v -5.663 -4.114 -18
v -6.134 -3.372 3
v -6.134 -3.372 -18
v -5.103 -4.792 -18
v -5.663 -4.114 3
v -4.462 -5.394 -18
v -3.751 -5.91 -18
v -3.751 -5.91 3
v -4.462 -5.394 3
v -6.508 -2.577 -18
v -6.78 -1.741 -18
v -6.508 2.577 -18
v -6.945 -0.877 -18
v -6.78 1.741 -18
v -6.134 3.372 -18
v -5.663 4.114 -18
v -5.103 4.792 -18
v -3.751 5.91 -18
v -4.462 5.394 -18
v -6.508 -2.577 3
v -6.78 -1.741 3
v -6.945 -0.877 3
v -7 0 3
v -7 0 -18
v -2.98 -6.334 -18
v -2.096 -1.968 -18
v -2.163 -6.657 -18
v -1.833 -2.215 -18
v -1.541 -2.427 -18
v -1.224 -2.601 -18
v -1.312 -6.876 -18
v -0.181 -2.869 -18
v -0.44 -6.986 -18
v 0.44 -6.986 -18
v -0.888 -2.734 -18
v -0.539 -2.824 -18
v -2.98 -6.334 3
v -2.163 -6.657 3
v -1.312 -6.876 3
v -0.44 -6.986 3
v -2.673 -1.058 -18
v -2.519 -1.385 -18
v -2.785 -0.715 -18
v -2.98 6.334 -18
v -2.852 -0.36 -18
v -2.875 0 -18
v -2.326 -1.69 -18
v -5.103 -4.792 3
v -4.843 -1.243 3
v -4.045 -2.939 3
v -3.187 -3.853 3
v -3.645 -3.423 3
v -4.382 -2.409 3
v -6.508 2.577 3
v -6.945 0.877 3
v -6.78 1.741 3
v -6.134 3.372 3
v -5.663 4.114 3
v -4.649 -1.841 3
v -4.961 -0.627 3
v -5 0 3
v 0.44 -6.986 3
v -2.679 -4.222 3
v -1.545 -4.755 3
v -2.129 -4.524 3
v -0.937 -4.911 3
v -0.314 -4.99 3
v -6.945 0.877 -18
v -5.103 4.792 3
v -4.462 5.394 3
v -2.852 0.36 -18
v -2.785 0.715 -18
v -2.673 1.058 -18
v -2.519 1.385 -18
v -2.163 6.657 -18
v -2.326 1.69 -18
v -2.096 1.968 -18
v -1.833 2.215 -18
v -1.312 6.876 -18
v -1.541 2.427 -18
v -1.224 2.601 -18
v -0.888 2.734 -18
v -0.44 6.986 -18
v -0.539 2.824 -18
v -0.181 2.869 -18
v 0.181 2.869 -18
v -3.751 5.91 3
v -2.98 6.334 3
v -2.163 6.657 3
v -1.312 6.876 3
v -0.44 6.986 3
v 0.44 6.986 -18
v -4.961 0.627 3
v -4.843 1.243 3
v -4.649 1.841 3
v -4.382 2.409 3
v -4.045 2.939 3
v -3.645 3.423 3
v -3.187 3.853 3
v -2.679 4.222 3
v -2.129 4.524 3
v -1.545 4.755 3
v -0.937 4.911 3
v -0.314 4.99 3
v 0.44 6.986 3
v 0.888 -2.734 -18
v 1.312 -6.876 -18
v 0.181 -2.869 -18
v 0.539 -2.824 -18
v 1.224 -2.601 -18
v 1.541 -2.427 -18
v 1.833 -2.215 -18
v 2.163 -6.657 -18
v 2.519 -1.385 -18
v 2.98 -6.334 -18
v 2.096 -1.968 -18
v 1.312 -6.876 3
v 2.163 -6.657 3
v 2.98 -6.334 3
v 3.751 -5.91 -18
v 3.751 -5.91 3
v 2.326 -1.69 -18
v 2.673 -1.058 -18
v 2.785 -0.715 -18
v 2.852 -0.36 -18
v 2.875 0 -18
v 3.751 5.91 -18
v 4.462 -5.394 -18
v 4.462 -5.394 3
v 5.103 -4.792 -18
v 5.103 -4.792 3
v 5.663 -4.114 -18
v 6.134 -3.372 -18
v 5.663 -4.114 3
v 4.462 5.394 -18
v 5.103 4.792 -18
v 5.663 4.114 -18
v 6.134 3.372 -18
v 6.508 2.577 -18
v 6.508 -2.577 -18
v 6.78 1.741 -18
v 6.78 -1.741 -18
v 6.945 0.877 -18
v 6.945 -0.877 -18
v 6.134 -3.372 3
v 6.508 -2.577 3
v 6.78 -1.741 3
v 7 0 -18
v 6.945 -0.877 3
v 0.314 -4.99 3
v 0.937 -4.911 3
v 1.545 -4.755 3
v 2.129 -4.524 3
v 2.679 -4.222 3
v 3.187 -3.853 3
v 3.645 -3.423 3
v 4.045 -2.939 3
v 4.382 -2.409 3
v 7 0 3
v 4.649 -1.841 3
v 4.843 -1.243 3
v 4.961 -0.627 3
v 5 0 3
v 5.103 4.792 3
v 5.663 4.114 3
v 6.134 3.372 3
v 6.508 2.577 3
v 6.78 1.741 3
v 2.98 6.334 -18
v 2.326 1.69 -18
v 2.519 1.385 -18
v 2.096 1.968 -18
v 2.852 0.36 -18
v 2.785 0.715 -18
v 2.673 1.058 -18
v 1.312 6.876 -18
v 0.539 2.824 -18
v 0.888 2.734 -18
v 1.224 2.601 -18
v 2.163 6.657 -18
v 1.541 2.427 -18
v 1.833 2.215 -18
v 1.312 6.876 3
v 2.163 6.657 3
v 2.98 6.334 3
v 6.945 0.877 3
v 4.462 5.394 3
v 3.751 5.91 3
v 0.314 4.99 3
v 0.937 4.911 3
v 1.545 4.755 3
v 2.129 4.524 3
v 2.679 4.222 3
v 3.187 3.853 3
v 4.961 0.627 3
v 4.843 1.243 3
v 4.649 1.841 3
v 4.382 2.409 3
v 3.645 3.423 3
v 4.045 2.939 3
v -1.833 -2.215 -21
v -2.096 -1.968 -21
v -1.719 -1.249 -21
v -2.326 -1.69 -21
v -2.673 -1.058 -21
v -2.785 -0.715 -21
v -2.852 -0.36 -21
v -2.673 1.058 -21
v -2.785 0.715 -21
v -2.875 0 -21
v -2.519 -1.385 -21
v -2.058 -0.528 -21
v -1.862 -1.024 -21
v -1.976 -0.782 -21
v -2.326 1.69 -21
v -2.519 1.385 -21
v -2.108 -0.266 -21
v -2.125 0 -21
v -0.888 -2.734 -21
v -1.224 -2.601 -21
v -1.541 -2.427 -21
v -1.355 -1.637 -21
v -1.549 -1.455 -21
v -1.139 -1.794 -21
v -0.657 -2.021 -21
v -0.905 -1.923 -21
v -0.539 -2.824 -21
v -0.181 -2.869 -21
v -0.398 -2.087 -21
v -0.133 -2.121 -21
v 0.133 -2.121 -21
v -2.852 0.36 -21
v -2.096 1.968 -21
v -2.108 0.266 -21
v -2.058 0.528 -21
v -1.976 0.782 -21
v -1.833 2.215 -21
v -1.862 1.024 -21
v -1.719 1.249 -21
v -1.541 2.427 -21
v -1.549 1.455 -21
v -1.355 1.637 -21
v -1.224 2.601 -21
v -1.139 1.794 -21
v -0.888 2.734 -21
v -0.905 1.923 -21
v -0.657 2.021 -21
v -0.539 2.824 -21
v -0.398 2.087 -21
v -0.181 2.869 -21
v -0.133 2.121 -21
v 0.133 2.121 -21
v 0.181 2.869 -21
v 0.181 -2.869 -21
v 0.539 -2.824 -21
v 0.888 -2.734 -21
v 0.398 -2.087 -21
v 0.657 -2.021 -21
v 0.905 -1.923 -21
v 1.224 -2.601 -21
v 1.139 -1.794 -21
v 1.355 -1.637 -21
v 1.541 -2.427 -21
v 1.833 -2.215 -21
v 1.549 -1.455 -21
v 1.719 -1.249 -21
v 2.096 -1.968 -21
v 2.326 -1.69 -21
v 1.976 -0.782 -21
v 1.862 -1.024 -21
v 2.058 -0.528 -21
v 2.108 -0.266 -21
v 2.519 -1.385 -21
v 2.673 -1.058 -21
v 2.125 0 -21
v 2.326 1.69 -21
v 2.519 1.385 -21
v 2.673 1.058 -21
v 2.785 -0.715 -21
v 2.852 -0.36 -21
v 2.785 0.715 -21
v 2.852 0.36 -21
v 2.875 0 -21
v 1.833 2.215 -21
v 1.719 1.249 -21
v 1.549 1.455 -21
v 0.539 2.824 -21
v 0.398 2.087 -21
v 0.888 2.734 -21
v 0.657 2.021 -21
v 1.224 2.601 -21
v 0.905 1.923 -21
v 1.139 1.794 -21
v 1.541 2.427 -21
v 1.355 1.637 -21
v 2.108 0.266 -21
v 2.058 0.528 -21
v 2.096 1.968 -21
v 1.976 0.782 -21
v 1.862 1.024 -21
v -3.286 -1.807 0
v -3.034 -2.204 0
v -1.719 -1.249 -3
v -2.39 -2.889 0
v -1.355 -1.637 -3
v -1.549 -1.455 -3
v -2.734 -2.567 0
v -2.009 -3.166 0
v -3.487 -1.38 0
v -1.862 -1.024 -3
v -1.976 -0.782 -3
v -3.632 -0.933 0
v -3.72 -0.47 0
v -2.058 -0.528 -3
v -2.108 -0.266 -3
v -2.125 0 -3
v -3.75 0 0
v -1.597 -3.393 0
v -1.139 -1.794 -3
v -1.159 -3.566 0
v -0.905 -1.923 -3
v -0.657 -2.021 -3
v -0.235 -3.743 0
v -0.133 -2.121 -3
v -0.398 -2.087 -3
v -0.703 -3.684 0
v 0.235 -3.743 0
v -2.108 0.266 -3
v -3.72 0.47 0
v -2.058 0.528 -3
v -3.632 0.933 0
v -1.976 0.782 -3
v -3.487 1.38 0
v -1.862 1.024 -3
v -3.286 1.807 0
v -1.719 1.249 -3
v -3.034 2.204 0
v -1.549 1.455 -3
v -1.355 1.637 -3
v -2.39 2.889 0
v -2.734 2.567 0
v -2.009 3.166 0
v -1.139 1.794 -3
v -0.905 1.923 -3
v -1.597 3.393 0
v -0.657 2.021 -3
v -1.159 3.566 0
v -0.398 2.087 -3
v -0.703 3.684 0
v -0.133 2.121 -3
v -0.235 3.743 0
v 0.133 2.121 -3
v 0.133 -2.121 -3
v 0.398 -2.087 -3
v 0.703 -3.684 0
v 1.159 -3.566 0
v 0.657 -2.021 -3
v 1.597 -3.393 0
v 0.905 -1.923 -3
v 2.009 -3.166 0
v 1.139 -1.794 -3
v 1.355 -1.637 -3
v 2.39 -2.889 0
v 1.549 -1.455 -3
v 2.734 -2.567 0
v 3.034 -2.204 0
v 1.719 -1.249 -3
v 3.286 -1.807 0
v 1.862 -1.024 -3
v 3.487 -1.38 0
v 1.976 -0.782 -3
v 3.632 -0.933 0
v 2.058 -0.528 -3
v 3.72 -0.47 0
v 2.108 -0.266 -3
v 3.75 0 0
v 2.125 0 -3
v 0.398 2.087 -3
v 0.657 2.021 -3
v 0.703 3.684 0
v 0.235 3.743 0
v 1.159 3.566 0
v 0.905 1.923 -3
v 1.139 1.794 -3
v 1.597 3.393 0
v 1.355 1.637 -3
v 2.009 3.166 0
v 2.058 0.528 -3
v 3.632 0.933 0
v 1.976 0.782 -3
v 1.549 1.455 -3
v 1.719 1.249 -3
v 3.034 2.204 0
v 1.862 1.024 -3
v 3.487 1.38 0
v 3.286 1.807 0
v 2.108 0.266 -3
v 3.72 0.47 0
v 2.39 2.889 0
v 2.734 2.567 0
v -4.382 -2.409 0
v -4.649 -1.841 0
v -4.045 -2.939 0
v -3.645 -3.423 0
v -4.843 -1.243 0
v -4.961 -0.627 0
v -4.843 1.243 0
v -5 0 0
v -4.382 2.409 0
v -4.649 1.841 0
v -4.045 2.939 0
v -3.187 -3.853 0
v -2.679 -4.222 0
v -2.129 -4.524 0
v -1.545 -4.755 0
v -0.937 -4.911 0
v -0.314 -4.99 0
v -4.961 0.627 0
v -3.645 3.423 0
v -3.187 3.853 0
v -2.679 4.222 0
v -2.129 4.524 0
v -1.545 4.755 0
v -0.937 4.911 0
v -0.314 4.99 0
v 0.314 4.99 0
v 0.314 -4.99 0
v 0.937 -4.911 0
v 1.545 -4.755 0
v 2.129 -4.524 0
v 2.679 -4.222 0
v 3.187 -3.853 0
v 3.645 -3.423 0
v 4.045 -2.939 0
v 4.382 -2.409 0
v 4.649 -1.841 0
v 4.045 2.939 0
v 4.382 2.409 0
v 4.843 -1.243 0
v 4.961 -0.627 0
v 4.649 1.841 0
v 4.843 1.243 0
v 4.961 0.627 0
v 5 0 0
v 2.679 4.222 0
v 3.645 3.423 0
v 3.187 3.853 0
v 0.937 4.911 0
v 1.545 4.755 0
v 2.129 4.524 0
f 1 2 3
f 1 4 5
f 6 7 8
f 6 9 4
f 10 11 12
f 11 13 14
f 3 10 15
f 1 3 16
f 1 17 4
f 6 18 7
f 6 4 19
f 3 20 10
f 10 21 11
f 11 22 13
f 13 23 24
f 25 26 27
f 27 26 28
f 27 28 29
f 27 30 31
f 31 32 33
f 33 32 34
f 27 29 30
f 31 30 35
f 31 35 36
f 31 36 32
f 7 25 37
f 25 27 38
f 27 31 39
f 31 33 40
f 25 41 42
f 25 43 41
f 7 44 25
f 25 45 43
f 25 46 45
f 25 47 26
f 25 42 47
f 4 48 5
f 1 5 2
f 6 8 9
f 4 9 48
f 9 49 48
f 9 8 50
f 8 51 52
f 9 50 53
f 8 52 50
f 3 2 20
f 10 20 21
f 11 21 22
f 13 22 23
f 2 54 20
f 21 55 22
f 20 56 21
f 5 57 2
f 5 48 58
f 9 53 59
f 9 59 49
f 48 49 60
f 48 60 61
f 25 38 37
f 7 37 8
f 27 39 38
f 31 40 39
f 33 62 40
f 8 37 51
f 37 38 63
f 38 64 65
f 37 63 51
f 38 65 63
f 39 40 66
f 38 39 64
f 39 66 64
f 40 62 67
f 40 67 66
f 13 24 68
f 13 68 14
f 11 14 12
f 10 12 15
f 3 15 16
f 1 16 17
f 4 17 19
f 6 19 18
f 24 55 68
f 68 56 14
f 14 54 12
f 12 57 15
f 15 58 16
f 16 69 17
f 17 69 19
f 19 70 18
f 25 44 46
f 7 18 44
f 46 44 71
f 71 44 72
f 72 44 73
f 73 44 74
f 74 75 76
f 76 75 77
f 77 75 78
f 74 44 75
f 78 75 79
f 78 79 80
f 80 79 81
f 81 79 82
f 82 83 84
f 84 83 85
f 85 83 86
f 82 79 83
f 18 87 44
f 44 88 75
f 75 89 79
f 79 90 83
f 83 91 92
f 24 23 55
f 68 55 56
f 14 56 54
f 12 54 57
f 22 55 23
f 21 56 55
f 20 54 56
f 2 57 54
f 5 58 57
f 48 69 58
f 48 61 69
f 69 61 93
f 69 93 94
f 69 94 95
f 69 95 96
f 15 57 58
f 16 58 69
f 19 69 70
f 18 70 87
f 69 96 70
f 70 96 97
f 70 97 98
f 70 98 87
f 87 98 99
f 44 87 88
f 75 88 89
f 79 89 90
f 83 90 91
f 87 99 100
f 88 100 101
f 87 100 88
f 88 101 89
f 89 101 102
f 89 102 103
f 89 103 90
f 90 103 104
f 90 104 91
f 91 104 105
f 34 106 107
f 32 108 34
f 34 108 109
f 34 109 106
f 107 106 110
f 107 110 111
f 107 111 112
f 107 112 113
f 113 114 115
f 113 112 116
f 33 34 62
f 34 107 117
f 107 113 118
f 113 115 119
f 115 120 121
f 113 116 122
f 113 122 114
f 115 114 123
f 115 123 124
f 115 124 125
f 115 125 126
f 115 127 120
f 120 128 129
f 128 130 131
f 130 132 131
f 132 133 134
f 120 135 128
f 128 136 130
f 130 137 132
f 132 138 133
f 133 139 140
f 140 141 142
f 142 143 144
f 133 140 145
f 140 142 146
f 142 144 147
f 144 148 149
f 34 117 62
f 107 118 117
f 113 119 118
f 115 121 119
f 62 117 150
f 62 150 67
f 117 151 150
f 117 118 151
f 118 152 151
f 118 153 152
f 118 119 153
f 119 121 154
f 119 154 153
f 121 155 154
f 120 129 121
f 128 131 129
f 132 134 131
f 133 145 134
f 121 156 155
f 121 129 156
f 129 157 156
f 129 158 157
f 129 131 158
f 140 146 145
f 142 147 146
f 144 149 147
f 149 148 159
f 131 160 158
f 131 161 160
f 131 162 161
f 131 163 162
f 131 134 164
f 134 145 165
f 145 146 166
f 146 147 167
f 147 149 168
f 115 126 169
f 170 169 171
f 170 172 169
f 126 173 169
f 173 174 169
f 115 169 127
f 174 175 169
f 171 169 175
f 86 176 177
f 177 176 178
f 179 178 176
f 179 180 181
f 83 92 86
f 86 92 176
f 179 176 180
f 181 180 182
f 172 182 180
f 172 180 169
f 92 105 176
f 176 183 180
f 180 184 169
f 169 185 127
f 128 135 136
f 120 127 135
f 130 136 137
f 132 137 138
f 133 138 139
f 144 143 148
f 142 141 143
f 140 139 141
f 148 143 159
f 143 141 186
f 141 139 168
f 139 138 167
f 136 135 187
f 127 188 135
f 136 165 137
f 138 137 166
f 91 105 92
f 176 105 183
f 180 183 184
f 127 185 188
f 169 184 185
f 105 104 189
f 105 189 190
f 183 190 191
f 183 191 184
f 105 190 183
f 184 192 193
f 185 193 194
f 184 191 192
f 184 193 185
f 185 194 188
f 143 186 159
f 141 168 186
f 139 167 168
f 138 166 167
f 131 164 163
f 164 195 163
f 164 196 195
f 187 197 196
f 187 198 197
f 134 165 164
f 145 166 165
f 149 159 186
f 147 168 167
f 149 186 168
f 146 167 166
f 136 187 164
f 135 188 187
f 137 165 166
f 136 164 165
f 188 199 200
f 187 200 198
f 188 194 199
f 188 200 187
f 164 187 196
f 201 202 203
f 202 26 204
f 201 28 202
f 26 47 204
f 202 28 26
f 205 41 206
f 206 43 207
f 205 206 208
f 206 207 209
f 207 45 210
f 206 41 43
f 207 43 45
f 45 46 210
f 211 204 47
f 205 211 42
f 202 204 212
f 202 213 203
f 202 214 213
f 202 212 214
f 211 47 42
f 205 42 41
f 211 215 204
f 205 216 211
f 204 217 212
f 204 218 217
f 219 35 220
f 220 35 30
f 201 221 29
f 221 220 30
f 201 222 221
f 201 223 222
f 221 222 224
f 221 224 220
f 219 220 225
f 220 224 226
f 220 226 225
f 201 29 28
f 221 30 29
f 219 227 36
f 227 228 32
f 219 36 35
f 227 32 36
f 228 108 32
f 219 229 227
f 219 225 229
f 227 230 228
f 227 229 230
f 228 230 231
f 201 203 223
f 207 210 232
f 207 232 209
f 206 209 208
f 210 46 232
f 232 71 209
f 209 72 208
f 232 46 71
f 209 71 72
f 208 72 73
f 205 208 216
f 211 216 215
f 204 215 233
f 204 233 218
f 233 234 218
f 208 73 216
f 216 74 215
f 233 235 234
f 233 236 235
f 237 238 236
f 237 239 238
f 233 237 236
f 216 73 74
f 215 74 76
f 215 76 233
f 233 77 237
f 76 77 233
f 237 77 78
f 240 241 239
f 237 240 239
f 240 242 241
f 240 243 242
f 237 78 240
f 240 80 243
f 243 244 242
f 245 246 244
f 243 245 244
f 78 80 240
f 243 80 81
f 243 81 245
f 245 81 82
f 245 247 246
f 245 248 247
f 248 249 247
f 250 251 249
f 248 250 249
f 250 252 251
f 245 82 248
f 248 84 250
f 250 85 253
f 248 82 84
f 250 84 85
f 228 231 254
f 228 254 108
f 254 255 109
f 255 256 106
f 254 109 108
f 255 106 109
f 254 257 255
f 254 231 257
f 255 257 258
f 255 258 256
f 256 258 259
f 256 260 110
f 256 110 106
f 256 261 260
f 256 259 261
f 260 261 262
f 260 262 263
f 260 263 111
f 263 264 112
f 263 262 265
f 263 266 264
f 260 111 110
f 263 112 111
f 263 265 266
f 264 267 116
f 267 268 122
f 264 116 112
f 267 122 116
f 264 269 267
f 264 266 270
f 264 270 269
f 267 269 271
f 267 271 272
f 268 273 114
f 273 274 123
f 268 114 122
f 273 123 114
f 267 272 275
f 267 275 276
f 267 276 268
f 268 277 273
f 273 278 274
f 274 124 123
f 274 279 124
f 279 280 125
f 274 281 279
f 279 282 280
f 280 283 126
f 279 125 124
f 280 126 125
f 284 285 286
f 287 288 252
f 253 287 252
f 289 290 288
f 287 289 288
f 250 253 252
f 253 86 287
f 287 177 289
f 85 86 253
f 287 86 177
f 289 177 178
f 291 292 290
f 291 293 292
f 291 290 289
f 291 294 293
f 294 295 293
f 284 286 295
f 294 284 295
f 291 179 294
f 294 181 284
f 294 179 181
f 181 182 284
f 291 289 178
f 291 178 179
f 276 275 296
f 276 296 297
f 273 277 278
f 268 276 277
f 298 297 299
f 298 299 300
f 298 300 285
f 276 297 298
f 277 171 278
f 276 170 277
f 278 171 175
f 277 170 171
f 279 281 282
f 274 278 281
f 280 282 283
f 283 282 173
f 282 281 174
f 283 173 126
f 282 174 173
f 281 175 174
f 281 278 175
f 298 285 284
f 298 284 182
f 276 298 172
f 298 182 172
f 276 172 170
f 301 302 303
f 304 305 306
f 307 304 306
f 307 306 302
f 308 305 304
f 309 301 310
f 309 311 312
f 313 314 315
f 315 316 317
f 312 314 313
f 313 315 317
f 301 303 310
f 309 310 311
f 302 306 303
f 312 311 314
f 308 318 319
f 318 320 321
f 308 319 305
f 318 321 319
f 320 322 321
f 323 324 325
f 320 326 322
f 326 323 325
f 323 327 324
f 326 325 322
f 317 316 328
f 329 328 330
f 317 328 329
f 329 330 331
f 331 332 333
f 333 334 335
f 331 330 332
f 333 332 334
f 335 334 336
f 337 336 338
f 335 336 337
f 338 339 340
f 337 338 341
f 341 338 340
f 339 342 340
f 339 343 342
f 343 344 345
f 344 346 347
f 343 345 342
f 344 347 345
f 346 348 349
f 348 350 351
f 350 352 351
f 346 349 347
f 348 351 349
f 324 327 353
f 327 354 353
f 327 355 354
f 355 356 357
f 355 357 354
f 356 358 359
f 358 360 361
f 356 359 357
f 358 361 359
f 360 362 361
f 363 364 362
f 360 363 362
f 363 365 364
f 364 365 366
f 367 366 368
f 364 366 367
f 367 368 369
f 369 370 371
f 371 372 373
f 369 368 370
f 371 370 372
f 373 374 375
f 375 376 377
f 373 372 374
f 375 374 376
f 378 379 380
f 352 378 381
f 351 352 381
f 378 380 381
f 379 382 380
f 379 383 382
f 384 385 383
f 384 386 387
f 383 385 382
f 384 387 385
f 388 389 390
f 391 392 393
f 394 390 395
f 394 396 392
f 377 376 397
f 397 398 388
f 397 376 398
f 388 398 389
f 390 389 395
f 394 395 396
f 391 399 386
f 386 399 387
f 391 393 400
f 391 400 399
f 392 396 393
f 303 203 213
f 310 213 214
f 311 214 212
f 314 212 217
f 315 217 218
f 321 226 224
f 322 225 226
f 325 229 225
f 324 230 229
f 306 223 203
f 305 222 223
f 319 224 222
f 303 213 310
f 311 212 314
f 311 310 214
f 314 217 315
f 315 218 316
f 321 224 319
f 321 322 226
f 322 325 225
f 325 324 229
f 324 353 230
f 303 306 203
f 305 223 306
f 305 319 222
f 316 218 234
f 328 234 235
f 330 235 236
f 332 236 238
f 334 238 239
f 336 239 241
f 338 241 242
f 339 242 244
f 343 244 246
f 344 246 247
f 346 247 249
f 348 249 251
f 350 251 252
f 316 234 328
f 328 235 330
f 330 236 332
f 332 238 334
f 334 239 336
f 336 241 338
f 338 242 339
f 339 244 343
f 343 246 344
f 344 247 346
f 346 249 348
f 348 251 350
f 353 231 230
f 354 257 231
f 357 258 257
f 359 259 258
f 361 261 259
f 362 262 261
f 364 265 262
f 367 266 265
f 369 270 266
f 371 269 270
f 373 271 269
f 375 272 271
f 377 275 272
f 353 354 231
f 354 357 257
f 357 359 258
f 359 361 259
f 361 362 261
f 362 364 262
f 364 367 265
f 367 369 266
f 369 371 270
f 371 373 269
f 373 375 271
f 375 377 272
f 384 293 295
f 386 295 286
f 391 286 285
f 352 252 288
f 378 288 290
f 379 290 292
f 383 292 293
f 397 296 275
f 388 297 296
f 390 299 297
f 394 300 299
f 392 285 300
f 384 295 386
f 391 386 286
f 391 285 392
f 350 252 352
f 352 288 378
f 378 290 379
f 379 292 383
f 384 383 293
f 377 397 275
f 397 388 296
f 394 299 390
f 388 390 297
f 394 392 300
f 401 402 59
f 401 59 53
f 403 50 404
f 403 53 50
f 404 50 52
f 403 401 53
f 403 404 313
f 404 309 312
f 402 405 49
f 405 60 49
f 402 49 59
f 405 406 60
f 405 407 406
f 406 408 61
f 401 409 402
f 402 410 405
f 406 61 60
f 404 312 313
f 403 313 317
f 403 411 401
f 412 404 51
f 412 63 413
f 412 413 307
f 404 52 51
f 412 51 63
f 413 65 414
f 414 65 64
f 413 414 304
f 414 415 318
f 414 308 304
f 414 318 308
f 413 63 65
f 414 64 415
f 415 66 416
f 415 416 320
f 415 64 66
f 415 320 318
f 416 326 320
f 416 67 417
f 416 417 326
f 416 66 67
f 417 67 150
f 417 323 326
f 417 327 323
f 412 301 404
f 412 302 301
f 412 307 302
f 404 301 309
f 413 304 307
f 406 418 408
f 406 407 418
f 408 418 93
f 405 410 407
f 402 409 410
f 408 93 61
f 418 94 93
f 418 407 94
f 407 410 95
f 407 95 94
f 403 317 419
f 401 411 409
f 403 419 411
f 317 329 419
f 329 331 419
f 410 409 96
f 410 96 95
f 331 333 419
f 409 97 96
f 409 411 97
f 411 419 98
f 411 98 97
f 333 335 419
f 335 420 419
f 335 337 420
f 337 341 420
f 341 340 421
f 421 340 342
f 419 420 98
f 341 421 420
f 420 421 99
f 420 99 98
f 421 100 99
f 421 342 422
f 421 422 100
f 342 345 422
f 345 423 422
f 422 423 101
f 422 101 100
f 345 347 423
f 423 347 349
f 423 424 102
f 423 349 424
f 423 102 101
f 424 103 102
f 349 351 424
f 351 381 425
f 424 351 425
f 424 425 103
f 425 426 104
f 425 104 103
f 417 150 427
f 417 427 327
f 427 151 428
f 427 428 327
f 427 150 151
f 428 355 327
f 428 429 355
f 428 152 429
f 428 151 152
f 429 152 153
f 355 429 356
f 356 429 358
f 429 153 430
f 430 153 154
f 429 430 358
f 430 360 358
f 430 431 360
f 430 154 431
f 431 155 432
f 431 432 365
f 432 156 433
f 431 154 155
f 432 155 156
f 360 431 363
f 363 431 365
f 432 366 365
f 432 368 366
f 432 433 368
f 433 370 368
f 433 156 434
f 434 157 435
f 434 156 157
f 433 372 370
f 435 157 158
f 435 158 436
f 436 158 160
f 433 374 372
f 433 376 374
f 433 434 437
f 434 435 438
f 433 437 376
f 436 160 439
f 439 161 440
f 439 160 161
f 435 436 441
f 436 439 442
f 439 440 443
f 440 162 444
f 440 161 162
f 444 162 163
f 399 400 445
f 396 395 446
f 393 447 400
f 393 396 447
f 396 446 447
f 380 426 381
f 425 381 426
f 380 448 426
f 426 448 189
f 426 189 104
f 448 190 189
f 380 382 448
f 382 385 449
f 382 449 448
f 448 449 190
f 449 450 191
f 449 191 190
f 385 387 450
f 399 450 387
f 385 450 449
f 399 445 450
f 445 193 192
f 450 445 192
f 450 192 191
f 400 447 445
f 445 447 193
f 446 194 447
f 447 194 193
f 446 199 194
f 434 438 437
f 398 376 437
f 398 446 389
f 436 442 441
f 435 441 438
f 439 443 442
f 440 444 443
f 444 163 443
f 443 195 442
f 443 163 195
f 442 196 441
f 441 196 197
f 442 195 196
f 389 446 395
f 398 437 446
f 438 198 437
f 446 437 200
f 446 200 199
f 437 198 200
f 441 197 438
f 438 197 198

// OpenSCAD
$fn = 50;

difference() {
	union() {
		translate(v = [0, 0, -18.0]) {
			cylinder(h = 21, r = 7.0);
		}
		#translate(v = [0, 0, -21.0]) {
			cylinder(h = 21, r = 2.875);
		}
	}
	union() {
		translate(v = [0, 0, 0]) {
			rotate(a = [0, 0, 0]) {
				difference() {
					union() {
						translate(v = [0, 0, -21.0]) {
							cylinder(h = 21, r = 2.0);
						}
						translate(v = [0, 0, -3]) {
							cylinder(h = 3, r1 = 2.125, r2 = 3.75);
						}
						translate(v = [0, 0, -21.0]) {
							cylinder(h = 21, r = 2.125);
						}
						translate(v = [0, 0, -21.0]) {
							cylinder(h = 21, r = 2.0);
						}
					}
					union();
				}
			}
		}
		#cylinder(h = 3, r = 5.0);
	}
}
